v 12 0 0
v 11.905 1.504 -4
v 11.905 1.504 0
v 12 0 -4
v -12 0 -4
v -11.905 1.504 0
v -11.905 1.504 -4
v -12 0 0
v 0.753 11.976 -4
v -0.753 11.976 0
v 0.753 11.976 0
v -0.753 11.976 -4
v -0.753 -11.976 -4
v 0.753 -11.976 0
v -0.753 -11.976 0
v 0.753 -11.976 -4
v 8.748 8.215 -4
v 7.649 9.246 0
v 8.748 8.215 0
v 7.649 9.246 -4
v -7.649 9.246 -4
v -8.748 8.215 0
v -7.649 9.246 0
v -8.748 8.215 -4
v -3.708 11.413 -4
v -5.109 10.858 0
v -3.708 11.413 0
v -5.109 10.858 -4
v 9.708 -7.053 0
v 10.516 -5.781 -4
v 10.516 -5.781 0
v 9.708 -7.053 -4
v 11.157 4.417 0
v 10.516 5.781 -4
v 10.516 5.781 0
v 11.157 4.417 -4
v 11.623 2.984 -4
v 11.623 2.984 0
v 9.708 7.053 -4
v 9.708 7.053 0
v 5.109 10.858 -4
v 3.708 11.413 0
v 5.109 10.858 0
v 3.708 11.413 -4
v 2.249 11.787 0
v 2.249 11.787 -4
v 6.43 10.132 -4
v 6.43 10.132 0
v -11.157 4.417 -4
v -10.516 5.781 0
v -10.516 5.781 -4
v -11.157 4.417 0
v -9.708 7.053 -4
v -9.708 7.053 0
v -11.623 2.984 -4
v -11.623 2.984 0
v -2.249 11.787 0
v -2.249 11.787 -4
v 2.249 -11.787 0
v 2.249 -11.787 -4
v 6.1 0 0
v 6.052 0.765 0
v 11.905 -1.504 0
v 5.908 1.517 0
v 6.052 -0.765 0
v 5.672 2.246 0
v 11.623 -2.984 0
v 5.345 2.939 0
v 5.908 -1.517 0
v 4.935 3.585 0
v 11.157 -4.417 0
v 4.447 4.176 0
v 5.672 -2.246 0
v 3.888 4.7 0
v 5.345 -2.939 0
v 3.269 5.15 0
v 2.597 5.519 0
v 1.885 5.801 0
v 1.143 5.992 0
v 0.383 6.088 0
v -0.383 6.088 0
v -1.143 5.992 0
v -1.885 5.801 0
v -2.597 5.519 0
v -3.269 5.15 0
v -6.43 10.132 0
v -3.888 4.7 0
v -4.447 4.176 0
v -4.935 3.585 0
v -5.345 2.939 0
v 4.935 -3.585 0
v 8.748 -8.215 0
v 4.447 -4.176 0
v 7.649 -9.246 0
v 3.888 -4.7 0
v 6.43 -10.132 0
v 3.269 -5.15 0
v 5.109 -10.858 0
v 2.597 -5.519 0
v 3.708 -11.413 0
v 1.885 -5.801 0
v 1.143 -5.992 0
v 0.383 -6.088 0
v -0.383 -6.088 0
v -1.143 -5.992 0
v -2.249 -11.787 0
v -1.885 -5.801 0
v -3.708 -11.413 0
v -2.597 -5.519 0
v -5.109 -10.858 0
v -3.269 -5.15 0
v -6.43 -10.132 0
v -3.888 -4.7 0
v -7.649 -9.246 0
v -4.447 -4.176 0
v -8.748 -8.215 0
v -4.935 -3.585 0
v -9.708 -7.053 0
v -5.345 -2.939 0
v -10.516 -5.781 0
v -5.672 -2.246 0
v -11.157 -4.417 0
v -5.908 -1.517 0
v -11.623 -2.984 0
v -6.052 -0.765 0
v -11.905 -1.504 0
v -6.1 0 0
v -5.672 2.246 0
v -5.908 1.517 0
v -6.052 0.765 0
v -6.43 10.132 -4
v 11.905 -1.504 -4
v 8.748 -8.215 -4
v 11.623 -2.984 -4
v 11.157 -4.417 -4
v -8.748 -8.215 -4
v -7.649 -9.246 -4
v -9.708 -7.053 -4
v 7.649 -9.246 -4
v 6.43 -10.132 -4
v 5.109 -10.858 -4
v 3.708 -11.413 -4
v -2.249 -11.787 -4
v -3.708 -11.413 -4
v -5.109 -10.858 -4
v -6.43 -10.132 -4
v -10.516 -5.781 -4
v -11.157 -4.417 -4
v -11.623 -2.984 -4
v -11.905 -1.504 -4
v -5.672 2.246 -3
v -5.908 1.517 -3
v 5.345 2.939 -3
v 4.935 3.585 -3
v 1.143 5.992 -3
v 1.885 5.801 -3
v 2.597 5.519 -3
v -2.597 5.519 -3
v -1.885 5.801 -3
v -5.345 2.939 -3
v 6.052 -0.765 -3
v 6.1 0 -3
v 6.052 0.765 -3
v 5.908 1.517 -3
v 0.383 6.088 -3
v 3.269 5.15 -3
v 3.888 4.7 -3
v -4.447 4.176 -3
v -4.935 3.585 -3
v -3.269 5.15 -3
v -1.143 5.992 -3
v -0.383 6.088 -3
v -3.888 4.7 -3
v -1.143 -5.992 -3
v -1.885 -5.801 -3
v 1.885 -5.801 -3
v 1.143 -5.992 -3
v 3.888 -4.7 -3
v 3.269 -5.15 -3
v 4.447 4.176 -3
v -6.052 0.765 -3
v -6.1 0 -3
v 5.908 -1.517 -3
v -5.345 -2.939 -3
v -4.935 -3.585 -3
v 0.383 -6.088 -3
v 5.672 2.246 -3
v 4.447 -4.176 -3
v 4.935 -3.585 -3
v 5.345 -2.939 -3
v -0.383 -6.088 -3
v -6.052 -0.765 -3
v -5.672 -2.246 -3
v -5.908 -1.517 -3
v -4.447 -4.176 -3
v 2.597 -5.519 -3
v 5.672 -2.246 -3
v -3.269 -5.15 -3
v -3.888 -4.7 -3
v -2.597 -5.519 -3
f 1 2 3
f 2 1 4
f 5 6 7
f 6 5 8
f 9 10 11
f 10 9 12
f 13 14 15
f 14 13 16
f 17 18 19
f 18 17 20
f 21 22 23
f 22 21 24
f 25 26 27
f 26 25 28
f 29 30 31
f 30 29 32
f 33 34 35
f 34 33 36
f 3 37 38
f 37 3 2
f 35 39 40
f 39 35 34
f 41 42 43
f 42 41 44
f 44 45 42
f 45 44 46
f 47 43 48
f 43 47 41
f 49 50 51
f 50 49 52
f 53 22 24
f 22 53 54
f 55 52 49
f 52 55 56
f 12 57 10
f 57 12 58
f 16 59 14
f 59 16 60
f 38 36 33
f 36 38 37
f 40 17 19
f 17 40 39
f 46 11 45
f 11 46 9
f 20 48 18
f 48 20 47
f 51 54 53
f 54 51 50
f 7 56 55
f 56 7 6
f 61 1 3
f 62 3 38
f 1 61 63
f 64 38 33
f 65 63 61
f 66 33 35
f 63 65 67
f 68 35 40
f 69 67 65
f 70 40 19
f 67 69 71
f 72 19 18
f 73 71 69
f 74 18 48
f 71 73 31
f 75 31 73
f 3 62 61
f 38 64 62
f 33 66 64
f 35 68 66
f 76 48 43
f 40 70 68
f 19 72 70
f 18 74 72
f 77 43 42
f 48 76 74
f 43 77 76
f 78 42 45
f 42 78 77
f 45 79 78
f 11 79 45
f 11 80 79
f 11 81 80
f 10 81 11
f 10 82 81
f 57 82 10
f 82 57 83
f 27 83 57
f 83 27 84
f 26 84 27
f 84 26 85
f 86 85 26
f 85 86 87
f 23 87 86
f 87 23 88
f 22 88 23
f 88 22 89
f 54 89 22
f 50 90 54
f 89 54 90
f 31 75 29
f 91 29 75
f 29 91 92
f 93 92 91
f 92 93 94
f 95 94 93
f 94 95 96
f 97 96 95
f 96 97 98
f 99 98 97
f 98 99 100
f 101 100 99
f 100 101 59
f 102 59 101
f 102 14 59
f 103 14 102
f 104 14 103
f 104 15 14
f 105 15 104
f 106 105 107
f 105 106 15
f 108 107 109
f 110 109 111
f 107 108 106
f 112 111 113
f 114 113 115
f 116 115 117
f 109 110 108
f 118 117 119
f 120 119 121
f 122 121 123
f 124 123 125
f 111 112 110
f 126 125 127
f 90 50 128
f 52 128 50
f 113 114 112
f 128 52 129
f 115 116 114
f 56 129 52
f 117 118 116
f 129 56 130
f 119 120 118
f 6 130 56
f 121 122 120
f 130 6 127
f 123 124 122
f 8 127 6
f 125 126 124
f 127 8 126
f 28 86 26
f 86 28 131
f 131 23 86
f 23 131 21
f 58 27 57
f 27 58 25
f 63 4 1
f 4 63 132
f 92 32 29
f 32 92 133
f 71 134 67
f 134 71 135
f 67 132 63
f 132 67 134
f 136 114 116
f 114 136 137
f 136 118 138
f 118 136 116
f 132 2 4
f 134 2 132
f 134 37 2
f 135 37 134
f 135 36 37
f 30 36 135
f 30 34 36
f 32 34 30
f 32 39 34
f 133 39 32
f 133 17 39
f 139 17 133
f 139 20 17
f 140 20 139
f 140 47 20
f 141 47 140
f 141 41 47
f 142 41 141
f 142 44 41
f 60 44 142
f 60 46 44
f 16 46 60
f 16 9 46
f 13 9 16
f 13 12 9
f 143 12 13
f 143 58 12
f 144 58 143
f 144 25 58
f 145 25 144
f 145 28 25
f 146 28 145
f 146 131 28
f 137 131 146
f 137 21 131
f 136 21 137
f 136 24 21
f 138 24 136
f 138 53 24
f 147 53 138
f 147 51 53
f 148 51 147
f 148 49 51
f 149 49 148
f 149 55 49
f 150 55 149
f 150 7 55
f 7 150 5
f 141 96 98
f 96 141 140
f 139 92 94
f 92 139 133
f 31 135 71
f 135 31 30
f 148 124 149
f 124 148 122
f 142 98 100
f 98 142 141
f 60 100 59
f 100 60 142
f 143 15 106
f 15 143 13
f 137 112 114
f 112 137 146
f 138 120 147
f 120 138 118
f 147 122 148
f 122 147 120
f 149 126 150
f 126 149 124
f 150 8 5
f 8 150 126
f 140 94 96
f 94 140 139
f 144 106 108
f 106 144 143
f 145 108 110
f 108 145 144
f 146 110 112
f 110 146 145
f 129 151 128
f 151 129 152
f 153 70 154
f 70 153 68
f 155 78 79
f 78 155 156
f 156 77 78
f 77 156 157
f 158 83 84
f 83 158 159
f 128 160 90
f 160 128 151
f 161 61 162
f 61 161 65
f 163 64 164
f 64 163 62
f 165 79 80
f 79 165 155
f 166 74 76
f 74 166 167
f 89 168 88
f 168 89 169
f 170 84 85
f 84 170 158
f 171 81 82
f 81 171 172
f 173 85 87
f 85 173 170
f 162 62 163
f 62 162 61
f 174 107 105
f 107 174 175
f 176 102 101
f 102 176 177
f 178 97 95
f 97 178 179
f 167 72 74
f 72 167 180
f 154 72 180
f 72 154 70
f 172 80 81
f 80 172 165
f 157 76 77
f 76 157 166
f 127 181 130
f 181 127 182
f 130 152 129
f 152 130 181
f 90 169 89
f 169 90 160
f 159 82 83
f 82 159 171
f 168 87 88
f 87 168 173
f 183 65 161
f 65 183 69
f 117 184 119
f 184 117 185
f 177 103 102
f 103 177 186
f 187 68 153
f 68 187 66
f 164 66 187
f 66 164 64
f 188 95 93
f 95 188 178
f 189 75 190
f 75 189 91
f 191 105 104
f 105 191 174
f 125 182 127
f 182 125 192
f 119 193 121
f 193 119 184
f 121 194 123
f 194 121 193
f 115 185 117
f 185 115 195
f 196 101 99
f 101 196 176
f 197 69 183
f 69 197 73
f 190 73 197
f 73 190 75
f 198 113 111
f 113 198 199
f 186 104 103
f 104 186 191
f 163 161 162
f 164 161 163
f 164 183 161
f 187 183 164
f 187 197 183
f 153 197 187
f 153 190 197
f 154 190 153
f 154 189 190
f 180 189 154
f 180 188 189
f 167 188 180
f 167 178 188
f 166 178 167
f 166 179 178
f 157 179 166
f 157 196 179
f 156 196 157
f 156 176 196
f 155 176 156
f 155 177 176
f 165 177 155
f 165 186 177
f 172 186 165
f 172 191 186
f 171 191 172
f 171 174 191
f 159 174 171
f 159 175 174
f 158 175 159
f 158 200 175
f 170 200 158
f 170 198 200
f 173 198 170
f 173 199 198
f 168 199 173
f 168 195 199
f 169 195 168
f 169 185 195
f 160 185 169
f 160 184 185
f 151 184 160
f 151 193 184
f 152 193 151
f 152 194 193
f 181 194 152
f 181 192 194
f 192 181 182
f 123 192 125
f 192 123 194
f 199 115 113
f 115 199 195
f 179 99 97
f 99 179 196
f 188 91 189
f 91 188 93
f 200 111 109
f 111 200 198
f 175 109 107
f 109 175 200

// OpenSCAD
$fn = 50;


difference() {
	union() {
		translate(v = [0, 0, -4.0000000000]) {
			cylinder(h = 4, r = 12.0000000000);
		}
	}
	union() {
		#translate(v = [0, 0, -3.0000000000]) {
			cylinder(h = 3, r = 6.1000000000);
		}
	}
}
